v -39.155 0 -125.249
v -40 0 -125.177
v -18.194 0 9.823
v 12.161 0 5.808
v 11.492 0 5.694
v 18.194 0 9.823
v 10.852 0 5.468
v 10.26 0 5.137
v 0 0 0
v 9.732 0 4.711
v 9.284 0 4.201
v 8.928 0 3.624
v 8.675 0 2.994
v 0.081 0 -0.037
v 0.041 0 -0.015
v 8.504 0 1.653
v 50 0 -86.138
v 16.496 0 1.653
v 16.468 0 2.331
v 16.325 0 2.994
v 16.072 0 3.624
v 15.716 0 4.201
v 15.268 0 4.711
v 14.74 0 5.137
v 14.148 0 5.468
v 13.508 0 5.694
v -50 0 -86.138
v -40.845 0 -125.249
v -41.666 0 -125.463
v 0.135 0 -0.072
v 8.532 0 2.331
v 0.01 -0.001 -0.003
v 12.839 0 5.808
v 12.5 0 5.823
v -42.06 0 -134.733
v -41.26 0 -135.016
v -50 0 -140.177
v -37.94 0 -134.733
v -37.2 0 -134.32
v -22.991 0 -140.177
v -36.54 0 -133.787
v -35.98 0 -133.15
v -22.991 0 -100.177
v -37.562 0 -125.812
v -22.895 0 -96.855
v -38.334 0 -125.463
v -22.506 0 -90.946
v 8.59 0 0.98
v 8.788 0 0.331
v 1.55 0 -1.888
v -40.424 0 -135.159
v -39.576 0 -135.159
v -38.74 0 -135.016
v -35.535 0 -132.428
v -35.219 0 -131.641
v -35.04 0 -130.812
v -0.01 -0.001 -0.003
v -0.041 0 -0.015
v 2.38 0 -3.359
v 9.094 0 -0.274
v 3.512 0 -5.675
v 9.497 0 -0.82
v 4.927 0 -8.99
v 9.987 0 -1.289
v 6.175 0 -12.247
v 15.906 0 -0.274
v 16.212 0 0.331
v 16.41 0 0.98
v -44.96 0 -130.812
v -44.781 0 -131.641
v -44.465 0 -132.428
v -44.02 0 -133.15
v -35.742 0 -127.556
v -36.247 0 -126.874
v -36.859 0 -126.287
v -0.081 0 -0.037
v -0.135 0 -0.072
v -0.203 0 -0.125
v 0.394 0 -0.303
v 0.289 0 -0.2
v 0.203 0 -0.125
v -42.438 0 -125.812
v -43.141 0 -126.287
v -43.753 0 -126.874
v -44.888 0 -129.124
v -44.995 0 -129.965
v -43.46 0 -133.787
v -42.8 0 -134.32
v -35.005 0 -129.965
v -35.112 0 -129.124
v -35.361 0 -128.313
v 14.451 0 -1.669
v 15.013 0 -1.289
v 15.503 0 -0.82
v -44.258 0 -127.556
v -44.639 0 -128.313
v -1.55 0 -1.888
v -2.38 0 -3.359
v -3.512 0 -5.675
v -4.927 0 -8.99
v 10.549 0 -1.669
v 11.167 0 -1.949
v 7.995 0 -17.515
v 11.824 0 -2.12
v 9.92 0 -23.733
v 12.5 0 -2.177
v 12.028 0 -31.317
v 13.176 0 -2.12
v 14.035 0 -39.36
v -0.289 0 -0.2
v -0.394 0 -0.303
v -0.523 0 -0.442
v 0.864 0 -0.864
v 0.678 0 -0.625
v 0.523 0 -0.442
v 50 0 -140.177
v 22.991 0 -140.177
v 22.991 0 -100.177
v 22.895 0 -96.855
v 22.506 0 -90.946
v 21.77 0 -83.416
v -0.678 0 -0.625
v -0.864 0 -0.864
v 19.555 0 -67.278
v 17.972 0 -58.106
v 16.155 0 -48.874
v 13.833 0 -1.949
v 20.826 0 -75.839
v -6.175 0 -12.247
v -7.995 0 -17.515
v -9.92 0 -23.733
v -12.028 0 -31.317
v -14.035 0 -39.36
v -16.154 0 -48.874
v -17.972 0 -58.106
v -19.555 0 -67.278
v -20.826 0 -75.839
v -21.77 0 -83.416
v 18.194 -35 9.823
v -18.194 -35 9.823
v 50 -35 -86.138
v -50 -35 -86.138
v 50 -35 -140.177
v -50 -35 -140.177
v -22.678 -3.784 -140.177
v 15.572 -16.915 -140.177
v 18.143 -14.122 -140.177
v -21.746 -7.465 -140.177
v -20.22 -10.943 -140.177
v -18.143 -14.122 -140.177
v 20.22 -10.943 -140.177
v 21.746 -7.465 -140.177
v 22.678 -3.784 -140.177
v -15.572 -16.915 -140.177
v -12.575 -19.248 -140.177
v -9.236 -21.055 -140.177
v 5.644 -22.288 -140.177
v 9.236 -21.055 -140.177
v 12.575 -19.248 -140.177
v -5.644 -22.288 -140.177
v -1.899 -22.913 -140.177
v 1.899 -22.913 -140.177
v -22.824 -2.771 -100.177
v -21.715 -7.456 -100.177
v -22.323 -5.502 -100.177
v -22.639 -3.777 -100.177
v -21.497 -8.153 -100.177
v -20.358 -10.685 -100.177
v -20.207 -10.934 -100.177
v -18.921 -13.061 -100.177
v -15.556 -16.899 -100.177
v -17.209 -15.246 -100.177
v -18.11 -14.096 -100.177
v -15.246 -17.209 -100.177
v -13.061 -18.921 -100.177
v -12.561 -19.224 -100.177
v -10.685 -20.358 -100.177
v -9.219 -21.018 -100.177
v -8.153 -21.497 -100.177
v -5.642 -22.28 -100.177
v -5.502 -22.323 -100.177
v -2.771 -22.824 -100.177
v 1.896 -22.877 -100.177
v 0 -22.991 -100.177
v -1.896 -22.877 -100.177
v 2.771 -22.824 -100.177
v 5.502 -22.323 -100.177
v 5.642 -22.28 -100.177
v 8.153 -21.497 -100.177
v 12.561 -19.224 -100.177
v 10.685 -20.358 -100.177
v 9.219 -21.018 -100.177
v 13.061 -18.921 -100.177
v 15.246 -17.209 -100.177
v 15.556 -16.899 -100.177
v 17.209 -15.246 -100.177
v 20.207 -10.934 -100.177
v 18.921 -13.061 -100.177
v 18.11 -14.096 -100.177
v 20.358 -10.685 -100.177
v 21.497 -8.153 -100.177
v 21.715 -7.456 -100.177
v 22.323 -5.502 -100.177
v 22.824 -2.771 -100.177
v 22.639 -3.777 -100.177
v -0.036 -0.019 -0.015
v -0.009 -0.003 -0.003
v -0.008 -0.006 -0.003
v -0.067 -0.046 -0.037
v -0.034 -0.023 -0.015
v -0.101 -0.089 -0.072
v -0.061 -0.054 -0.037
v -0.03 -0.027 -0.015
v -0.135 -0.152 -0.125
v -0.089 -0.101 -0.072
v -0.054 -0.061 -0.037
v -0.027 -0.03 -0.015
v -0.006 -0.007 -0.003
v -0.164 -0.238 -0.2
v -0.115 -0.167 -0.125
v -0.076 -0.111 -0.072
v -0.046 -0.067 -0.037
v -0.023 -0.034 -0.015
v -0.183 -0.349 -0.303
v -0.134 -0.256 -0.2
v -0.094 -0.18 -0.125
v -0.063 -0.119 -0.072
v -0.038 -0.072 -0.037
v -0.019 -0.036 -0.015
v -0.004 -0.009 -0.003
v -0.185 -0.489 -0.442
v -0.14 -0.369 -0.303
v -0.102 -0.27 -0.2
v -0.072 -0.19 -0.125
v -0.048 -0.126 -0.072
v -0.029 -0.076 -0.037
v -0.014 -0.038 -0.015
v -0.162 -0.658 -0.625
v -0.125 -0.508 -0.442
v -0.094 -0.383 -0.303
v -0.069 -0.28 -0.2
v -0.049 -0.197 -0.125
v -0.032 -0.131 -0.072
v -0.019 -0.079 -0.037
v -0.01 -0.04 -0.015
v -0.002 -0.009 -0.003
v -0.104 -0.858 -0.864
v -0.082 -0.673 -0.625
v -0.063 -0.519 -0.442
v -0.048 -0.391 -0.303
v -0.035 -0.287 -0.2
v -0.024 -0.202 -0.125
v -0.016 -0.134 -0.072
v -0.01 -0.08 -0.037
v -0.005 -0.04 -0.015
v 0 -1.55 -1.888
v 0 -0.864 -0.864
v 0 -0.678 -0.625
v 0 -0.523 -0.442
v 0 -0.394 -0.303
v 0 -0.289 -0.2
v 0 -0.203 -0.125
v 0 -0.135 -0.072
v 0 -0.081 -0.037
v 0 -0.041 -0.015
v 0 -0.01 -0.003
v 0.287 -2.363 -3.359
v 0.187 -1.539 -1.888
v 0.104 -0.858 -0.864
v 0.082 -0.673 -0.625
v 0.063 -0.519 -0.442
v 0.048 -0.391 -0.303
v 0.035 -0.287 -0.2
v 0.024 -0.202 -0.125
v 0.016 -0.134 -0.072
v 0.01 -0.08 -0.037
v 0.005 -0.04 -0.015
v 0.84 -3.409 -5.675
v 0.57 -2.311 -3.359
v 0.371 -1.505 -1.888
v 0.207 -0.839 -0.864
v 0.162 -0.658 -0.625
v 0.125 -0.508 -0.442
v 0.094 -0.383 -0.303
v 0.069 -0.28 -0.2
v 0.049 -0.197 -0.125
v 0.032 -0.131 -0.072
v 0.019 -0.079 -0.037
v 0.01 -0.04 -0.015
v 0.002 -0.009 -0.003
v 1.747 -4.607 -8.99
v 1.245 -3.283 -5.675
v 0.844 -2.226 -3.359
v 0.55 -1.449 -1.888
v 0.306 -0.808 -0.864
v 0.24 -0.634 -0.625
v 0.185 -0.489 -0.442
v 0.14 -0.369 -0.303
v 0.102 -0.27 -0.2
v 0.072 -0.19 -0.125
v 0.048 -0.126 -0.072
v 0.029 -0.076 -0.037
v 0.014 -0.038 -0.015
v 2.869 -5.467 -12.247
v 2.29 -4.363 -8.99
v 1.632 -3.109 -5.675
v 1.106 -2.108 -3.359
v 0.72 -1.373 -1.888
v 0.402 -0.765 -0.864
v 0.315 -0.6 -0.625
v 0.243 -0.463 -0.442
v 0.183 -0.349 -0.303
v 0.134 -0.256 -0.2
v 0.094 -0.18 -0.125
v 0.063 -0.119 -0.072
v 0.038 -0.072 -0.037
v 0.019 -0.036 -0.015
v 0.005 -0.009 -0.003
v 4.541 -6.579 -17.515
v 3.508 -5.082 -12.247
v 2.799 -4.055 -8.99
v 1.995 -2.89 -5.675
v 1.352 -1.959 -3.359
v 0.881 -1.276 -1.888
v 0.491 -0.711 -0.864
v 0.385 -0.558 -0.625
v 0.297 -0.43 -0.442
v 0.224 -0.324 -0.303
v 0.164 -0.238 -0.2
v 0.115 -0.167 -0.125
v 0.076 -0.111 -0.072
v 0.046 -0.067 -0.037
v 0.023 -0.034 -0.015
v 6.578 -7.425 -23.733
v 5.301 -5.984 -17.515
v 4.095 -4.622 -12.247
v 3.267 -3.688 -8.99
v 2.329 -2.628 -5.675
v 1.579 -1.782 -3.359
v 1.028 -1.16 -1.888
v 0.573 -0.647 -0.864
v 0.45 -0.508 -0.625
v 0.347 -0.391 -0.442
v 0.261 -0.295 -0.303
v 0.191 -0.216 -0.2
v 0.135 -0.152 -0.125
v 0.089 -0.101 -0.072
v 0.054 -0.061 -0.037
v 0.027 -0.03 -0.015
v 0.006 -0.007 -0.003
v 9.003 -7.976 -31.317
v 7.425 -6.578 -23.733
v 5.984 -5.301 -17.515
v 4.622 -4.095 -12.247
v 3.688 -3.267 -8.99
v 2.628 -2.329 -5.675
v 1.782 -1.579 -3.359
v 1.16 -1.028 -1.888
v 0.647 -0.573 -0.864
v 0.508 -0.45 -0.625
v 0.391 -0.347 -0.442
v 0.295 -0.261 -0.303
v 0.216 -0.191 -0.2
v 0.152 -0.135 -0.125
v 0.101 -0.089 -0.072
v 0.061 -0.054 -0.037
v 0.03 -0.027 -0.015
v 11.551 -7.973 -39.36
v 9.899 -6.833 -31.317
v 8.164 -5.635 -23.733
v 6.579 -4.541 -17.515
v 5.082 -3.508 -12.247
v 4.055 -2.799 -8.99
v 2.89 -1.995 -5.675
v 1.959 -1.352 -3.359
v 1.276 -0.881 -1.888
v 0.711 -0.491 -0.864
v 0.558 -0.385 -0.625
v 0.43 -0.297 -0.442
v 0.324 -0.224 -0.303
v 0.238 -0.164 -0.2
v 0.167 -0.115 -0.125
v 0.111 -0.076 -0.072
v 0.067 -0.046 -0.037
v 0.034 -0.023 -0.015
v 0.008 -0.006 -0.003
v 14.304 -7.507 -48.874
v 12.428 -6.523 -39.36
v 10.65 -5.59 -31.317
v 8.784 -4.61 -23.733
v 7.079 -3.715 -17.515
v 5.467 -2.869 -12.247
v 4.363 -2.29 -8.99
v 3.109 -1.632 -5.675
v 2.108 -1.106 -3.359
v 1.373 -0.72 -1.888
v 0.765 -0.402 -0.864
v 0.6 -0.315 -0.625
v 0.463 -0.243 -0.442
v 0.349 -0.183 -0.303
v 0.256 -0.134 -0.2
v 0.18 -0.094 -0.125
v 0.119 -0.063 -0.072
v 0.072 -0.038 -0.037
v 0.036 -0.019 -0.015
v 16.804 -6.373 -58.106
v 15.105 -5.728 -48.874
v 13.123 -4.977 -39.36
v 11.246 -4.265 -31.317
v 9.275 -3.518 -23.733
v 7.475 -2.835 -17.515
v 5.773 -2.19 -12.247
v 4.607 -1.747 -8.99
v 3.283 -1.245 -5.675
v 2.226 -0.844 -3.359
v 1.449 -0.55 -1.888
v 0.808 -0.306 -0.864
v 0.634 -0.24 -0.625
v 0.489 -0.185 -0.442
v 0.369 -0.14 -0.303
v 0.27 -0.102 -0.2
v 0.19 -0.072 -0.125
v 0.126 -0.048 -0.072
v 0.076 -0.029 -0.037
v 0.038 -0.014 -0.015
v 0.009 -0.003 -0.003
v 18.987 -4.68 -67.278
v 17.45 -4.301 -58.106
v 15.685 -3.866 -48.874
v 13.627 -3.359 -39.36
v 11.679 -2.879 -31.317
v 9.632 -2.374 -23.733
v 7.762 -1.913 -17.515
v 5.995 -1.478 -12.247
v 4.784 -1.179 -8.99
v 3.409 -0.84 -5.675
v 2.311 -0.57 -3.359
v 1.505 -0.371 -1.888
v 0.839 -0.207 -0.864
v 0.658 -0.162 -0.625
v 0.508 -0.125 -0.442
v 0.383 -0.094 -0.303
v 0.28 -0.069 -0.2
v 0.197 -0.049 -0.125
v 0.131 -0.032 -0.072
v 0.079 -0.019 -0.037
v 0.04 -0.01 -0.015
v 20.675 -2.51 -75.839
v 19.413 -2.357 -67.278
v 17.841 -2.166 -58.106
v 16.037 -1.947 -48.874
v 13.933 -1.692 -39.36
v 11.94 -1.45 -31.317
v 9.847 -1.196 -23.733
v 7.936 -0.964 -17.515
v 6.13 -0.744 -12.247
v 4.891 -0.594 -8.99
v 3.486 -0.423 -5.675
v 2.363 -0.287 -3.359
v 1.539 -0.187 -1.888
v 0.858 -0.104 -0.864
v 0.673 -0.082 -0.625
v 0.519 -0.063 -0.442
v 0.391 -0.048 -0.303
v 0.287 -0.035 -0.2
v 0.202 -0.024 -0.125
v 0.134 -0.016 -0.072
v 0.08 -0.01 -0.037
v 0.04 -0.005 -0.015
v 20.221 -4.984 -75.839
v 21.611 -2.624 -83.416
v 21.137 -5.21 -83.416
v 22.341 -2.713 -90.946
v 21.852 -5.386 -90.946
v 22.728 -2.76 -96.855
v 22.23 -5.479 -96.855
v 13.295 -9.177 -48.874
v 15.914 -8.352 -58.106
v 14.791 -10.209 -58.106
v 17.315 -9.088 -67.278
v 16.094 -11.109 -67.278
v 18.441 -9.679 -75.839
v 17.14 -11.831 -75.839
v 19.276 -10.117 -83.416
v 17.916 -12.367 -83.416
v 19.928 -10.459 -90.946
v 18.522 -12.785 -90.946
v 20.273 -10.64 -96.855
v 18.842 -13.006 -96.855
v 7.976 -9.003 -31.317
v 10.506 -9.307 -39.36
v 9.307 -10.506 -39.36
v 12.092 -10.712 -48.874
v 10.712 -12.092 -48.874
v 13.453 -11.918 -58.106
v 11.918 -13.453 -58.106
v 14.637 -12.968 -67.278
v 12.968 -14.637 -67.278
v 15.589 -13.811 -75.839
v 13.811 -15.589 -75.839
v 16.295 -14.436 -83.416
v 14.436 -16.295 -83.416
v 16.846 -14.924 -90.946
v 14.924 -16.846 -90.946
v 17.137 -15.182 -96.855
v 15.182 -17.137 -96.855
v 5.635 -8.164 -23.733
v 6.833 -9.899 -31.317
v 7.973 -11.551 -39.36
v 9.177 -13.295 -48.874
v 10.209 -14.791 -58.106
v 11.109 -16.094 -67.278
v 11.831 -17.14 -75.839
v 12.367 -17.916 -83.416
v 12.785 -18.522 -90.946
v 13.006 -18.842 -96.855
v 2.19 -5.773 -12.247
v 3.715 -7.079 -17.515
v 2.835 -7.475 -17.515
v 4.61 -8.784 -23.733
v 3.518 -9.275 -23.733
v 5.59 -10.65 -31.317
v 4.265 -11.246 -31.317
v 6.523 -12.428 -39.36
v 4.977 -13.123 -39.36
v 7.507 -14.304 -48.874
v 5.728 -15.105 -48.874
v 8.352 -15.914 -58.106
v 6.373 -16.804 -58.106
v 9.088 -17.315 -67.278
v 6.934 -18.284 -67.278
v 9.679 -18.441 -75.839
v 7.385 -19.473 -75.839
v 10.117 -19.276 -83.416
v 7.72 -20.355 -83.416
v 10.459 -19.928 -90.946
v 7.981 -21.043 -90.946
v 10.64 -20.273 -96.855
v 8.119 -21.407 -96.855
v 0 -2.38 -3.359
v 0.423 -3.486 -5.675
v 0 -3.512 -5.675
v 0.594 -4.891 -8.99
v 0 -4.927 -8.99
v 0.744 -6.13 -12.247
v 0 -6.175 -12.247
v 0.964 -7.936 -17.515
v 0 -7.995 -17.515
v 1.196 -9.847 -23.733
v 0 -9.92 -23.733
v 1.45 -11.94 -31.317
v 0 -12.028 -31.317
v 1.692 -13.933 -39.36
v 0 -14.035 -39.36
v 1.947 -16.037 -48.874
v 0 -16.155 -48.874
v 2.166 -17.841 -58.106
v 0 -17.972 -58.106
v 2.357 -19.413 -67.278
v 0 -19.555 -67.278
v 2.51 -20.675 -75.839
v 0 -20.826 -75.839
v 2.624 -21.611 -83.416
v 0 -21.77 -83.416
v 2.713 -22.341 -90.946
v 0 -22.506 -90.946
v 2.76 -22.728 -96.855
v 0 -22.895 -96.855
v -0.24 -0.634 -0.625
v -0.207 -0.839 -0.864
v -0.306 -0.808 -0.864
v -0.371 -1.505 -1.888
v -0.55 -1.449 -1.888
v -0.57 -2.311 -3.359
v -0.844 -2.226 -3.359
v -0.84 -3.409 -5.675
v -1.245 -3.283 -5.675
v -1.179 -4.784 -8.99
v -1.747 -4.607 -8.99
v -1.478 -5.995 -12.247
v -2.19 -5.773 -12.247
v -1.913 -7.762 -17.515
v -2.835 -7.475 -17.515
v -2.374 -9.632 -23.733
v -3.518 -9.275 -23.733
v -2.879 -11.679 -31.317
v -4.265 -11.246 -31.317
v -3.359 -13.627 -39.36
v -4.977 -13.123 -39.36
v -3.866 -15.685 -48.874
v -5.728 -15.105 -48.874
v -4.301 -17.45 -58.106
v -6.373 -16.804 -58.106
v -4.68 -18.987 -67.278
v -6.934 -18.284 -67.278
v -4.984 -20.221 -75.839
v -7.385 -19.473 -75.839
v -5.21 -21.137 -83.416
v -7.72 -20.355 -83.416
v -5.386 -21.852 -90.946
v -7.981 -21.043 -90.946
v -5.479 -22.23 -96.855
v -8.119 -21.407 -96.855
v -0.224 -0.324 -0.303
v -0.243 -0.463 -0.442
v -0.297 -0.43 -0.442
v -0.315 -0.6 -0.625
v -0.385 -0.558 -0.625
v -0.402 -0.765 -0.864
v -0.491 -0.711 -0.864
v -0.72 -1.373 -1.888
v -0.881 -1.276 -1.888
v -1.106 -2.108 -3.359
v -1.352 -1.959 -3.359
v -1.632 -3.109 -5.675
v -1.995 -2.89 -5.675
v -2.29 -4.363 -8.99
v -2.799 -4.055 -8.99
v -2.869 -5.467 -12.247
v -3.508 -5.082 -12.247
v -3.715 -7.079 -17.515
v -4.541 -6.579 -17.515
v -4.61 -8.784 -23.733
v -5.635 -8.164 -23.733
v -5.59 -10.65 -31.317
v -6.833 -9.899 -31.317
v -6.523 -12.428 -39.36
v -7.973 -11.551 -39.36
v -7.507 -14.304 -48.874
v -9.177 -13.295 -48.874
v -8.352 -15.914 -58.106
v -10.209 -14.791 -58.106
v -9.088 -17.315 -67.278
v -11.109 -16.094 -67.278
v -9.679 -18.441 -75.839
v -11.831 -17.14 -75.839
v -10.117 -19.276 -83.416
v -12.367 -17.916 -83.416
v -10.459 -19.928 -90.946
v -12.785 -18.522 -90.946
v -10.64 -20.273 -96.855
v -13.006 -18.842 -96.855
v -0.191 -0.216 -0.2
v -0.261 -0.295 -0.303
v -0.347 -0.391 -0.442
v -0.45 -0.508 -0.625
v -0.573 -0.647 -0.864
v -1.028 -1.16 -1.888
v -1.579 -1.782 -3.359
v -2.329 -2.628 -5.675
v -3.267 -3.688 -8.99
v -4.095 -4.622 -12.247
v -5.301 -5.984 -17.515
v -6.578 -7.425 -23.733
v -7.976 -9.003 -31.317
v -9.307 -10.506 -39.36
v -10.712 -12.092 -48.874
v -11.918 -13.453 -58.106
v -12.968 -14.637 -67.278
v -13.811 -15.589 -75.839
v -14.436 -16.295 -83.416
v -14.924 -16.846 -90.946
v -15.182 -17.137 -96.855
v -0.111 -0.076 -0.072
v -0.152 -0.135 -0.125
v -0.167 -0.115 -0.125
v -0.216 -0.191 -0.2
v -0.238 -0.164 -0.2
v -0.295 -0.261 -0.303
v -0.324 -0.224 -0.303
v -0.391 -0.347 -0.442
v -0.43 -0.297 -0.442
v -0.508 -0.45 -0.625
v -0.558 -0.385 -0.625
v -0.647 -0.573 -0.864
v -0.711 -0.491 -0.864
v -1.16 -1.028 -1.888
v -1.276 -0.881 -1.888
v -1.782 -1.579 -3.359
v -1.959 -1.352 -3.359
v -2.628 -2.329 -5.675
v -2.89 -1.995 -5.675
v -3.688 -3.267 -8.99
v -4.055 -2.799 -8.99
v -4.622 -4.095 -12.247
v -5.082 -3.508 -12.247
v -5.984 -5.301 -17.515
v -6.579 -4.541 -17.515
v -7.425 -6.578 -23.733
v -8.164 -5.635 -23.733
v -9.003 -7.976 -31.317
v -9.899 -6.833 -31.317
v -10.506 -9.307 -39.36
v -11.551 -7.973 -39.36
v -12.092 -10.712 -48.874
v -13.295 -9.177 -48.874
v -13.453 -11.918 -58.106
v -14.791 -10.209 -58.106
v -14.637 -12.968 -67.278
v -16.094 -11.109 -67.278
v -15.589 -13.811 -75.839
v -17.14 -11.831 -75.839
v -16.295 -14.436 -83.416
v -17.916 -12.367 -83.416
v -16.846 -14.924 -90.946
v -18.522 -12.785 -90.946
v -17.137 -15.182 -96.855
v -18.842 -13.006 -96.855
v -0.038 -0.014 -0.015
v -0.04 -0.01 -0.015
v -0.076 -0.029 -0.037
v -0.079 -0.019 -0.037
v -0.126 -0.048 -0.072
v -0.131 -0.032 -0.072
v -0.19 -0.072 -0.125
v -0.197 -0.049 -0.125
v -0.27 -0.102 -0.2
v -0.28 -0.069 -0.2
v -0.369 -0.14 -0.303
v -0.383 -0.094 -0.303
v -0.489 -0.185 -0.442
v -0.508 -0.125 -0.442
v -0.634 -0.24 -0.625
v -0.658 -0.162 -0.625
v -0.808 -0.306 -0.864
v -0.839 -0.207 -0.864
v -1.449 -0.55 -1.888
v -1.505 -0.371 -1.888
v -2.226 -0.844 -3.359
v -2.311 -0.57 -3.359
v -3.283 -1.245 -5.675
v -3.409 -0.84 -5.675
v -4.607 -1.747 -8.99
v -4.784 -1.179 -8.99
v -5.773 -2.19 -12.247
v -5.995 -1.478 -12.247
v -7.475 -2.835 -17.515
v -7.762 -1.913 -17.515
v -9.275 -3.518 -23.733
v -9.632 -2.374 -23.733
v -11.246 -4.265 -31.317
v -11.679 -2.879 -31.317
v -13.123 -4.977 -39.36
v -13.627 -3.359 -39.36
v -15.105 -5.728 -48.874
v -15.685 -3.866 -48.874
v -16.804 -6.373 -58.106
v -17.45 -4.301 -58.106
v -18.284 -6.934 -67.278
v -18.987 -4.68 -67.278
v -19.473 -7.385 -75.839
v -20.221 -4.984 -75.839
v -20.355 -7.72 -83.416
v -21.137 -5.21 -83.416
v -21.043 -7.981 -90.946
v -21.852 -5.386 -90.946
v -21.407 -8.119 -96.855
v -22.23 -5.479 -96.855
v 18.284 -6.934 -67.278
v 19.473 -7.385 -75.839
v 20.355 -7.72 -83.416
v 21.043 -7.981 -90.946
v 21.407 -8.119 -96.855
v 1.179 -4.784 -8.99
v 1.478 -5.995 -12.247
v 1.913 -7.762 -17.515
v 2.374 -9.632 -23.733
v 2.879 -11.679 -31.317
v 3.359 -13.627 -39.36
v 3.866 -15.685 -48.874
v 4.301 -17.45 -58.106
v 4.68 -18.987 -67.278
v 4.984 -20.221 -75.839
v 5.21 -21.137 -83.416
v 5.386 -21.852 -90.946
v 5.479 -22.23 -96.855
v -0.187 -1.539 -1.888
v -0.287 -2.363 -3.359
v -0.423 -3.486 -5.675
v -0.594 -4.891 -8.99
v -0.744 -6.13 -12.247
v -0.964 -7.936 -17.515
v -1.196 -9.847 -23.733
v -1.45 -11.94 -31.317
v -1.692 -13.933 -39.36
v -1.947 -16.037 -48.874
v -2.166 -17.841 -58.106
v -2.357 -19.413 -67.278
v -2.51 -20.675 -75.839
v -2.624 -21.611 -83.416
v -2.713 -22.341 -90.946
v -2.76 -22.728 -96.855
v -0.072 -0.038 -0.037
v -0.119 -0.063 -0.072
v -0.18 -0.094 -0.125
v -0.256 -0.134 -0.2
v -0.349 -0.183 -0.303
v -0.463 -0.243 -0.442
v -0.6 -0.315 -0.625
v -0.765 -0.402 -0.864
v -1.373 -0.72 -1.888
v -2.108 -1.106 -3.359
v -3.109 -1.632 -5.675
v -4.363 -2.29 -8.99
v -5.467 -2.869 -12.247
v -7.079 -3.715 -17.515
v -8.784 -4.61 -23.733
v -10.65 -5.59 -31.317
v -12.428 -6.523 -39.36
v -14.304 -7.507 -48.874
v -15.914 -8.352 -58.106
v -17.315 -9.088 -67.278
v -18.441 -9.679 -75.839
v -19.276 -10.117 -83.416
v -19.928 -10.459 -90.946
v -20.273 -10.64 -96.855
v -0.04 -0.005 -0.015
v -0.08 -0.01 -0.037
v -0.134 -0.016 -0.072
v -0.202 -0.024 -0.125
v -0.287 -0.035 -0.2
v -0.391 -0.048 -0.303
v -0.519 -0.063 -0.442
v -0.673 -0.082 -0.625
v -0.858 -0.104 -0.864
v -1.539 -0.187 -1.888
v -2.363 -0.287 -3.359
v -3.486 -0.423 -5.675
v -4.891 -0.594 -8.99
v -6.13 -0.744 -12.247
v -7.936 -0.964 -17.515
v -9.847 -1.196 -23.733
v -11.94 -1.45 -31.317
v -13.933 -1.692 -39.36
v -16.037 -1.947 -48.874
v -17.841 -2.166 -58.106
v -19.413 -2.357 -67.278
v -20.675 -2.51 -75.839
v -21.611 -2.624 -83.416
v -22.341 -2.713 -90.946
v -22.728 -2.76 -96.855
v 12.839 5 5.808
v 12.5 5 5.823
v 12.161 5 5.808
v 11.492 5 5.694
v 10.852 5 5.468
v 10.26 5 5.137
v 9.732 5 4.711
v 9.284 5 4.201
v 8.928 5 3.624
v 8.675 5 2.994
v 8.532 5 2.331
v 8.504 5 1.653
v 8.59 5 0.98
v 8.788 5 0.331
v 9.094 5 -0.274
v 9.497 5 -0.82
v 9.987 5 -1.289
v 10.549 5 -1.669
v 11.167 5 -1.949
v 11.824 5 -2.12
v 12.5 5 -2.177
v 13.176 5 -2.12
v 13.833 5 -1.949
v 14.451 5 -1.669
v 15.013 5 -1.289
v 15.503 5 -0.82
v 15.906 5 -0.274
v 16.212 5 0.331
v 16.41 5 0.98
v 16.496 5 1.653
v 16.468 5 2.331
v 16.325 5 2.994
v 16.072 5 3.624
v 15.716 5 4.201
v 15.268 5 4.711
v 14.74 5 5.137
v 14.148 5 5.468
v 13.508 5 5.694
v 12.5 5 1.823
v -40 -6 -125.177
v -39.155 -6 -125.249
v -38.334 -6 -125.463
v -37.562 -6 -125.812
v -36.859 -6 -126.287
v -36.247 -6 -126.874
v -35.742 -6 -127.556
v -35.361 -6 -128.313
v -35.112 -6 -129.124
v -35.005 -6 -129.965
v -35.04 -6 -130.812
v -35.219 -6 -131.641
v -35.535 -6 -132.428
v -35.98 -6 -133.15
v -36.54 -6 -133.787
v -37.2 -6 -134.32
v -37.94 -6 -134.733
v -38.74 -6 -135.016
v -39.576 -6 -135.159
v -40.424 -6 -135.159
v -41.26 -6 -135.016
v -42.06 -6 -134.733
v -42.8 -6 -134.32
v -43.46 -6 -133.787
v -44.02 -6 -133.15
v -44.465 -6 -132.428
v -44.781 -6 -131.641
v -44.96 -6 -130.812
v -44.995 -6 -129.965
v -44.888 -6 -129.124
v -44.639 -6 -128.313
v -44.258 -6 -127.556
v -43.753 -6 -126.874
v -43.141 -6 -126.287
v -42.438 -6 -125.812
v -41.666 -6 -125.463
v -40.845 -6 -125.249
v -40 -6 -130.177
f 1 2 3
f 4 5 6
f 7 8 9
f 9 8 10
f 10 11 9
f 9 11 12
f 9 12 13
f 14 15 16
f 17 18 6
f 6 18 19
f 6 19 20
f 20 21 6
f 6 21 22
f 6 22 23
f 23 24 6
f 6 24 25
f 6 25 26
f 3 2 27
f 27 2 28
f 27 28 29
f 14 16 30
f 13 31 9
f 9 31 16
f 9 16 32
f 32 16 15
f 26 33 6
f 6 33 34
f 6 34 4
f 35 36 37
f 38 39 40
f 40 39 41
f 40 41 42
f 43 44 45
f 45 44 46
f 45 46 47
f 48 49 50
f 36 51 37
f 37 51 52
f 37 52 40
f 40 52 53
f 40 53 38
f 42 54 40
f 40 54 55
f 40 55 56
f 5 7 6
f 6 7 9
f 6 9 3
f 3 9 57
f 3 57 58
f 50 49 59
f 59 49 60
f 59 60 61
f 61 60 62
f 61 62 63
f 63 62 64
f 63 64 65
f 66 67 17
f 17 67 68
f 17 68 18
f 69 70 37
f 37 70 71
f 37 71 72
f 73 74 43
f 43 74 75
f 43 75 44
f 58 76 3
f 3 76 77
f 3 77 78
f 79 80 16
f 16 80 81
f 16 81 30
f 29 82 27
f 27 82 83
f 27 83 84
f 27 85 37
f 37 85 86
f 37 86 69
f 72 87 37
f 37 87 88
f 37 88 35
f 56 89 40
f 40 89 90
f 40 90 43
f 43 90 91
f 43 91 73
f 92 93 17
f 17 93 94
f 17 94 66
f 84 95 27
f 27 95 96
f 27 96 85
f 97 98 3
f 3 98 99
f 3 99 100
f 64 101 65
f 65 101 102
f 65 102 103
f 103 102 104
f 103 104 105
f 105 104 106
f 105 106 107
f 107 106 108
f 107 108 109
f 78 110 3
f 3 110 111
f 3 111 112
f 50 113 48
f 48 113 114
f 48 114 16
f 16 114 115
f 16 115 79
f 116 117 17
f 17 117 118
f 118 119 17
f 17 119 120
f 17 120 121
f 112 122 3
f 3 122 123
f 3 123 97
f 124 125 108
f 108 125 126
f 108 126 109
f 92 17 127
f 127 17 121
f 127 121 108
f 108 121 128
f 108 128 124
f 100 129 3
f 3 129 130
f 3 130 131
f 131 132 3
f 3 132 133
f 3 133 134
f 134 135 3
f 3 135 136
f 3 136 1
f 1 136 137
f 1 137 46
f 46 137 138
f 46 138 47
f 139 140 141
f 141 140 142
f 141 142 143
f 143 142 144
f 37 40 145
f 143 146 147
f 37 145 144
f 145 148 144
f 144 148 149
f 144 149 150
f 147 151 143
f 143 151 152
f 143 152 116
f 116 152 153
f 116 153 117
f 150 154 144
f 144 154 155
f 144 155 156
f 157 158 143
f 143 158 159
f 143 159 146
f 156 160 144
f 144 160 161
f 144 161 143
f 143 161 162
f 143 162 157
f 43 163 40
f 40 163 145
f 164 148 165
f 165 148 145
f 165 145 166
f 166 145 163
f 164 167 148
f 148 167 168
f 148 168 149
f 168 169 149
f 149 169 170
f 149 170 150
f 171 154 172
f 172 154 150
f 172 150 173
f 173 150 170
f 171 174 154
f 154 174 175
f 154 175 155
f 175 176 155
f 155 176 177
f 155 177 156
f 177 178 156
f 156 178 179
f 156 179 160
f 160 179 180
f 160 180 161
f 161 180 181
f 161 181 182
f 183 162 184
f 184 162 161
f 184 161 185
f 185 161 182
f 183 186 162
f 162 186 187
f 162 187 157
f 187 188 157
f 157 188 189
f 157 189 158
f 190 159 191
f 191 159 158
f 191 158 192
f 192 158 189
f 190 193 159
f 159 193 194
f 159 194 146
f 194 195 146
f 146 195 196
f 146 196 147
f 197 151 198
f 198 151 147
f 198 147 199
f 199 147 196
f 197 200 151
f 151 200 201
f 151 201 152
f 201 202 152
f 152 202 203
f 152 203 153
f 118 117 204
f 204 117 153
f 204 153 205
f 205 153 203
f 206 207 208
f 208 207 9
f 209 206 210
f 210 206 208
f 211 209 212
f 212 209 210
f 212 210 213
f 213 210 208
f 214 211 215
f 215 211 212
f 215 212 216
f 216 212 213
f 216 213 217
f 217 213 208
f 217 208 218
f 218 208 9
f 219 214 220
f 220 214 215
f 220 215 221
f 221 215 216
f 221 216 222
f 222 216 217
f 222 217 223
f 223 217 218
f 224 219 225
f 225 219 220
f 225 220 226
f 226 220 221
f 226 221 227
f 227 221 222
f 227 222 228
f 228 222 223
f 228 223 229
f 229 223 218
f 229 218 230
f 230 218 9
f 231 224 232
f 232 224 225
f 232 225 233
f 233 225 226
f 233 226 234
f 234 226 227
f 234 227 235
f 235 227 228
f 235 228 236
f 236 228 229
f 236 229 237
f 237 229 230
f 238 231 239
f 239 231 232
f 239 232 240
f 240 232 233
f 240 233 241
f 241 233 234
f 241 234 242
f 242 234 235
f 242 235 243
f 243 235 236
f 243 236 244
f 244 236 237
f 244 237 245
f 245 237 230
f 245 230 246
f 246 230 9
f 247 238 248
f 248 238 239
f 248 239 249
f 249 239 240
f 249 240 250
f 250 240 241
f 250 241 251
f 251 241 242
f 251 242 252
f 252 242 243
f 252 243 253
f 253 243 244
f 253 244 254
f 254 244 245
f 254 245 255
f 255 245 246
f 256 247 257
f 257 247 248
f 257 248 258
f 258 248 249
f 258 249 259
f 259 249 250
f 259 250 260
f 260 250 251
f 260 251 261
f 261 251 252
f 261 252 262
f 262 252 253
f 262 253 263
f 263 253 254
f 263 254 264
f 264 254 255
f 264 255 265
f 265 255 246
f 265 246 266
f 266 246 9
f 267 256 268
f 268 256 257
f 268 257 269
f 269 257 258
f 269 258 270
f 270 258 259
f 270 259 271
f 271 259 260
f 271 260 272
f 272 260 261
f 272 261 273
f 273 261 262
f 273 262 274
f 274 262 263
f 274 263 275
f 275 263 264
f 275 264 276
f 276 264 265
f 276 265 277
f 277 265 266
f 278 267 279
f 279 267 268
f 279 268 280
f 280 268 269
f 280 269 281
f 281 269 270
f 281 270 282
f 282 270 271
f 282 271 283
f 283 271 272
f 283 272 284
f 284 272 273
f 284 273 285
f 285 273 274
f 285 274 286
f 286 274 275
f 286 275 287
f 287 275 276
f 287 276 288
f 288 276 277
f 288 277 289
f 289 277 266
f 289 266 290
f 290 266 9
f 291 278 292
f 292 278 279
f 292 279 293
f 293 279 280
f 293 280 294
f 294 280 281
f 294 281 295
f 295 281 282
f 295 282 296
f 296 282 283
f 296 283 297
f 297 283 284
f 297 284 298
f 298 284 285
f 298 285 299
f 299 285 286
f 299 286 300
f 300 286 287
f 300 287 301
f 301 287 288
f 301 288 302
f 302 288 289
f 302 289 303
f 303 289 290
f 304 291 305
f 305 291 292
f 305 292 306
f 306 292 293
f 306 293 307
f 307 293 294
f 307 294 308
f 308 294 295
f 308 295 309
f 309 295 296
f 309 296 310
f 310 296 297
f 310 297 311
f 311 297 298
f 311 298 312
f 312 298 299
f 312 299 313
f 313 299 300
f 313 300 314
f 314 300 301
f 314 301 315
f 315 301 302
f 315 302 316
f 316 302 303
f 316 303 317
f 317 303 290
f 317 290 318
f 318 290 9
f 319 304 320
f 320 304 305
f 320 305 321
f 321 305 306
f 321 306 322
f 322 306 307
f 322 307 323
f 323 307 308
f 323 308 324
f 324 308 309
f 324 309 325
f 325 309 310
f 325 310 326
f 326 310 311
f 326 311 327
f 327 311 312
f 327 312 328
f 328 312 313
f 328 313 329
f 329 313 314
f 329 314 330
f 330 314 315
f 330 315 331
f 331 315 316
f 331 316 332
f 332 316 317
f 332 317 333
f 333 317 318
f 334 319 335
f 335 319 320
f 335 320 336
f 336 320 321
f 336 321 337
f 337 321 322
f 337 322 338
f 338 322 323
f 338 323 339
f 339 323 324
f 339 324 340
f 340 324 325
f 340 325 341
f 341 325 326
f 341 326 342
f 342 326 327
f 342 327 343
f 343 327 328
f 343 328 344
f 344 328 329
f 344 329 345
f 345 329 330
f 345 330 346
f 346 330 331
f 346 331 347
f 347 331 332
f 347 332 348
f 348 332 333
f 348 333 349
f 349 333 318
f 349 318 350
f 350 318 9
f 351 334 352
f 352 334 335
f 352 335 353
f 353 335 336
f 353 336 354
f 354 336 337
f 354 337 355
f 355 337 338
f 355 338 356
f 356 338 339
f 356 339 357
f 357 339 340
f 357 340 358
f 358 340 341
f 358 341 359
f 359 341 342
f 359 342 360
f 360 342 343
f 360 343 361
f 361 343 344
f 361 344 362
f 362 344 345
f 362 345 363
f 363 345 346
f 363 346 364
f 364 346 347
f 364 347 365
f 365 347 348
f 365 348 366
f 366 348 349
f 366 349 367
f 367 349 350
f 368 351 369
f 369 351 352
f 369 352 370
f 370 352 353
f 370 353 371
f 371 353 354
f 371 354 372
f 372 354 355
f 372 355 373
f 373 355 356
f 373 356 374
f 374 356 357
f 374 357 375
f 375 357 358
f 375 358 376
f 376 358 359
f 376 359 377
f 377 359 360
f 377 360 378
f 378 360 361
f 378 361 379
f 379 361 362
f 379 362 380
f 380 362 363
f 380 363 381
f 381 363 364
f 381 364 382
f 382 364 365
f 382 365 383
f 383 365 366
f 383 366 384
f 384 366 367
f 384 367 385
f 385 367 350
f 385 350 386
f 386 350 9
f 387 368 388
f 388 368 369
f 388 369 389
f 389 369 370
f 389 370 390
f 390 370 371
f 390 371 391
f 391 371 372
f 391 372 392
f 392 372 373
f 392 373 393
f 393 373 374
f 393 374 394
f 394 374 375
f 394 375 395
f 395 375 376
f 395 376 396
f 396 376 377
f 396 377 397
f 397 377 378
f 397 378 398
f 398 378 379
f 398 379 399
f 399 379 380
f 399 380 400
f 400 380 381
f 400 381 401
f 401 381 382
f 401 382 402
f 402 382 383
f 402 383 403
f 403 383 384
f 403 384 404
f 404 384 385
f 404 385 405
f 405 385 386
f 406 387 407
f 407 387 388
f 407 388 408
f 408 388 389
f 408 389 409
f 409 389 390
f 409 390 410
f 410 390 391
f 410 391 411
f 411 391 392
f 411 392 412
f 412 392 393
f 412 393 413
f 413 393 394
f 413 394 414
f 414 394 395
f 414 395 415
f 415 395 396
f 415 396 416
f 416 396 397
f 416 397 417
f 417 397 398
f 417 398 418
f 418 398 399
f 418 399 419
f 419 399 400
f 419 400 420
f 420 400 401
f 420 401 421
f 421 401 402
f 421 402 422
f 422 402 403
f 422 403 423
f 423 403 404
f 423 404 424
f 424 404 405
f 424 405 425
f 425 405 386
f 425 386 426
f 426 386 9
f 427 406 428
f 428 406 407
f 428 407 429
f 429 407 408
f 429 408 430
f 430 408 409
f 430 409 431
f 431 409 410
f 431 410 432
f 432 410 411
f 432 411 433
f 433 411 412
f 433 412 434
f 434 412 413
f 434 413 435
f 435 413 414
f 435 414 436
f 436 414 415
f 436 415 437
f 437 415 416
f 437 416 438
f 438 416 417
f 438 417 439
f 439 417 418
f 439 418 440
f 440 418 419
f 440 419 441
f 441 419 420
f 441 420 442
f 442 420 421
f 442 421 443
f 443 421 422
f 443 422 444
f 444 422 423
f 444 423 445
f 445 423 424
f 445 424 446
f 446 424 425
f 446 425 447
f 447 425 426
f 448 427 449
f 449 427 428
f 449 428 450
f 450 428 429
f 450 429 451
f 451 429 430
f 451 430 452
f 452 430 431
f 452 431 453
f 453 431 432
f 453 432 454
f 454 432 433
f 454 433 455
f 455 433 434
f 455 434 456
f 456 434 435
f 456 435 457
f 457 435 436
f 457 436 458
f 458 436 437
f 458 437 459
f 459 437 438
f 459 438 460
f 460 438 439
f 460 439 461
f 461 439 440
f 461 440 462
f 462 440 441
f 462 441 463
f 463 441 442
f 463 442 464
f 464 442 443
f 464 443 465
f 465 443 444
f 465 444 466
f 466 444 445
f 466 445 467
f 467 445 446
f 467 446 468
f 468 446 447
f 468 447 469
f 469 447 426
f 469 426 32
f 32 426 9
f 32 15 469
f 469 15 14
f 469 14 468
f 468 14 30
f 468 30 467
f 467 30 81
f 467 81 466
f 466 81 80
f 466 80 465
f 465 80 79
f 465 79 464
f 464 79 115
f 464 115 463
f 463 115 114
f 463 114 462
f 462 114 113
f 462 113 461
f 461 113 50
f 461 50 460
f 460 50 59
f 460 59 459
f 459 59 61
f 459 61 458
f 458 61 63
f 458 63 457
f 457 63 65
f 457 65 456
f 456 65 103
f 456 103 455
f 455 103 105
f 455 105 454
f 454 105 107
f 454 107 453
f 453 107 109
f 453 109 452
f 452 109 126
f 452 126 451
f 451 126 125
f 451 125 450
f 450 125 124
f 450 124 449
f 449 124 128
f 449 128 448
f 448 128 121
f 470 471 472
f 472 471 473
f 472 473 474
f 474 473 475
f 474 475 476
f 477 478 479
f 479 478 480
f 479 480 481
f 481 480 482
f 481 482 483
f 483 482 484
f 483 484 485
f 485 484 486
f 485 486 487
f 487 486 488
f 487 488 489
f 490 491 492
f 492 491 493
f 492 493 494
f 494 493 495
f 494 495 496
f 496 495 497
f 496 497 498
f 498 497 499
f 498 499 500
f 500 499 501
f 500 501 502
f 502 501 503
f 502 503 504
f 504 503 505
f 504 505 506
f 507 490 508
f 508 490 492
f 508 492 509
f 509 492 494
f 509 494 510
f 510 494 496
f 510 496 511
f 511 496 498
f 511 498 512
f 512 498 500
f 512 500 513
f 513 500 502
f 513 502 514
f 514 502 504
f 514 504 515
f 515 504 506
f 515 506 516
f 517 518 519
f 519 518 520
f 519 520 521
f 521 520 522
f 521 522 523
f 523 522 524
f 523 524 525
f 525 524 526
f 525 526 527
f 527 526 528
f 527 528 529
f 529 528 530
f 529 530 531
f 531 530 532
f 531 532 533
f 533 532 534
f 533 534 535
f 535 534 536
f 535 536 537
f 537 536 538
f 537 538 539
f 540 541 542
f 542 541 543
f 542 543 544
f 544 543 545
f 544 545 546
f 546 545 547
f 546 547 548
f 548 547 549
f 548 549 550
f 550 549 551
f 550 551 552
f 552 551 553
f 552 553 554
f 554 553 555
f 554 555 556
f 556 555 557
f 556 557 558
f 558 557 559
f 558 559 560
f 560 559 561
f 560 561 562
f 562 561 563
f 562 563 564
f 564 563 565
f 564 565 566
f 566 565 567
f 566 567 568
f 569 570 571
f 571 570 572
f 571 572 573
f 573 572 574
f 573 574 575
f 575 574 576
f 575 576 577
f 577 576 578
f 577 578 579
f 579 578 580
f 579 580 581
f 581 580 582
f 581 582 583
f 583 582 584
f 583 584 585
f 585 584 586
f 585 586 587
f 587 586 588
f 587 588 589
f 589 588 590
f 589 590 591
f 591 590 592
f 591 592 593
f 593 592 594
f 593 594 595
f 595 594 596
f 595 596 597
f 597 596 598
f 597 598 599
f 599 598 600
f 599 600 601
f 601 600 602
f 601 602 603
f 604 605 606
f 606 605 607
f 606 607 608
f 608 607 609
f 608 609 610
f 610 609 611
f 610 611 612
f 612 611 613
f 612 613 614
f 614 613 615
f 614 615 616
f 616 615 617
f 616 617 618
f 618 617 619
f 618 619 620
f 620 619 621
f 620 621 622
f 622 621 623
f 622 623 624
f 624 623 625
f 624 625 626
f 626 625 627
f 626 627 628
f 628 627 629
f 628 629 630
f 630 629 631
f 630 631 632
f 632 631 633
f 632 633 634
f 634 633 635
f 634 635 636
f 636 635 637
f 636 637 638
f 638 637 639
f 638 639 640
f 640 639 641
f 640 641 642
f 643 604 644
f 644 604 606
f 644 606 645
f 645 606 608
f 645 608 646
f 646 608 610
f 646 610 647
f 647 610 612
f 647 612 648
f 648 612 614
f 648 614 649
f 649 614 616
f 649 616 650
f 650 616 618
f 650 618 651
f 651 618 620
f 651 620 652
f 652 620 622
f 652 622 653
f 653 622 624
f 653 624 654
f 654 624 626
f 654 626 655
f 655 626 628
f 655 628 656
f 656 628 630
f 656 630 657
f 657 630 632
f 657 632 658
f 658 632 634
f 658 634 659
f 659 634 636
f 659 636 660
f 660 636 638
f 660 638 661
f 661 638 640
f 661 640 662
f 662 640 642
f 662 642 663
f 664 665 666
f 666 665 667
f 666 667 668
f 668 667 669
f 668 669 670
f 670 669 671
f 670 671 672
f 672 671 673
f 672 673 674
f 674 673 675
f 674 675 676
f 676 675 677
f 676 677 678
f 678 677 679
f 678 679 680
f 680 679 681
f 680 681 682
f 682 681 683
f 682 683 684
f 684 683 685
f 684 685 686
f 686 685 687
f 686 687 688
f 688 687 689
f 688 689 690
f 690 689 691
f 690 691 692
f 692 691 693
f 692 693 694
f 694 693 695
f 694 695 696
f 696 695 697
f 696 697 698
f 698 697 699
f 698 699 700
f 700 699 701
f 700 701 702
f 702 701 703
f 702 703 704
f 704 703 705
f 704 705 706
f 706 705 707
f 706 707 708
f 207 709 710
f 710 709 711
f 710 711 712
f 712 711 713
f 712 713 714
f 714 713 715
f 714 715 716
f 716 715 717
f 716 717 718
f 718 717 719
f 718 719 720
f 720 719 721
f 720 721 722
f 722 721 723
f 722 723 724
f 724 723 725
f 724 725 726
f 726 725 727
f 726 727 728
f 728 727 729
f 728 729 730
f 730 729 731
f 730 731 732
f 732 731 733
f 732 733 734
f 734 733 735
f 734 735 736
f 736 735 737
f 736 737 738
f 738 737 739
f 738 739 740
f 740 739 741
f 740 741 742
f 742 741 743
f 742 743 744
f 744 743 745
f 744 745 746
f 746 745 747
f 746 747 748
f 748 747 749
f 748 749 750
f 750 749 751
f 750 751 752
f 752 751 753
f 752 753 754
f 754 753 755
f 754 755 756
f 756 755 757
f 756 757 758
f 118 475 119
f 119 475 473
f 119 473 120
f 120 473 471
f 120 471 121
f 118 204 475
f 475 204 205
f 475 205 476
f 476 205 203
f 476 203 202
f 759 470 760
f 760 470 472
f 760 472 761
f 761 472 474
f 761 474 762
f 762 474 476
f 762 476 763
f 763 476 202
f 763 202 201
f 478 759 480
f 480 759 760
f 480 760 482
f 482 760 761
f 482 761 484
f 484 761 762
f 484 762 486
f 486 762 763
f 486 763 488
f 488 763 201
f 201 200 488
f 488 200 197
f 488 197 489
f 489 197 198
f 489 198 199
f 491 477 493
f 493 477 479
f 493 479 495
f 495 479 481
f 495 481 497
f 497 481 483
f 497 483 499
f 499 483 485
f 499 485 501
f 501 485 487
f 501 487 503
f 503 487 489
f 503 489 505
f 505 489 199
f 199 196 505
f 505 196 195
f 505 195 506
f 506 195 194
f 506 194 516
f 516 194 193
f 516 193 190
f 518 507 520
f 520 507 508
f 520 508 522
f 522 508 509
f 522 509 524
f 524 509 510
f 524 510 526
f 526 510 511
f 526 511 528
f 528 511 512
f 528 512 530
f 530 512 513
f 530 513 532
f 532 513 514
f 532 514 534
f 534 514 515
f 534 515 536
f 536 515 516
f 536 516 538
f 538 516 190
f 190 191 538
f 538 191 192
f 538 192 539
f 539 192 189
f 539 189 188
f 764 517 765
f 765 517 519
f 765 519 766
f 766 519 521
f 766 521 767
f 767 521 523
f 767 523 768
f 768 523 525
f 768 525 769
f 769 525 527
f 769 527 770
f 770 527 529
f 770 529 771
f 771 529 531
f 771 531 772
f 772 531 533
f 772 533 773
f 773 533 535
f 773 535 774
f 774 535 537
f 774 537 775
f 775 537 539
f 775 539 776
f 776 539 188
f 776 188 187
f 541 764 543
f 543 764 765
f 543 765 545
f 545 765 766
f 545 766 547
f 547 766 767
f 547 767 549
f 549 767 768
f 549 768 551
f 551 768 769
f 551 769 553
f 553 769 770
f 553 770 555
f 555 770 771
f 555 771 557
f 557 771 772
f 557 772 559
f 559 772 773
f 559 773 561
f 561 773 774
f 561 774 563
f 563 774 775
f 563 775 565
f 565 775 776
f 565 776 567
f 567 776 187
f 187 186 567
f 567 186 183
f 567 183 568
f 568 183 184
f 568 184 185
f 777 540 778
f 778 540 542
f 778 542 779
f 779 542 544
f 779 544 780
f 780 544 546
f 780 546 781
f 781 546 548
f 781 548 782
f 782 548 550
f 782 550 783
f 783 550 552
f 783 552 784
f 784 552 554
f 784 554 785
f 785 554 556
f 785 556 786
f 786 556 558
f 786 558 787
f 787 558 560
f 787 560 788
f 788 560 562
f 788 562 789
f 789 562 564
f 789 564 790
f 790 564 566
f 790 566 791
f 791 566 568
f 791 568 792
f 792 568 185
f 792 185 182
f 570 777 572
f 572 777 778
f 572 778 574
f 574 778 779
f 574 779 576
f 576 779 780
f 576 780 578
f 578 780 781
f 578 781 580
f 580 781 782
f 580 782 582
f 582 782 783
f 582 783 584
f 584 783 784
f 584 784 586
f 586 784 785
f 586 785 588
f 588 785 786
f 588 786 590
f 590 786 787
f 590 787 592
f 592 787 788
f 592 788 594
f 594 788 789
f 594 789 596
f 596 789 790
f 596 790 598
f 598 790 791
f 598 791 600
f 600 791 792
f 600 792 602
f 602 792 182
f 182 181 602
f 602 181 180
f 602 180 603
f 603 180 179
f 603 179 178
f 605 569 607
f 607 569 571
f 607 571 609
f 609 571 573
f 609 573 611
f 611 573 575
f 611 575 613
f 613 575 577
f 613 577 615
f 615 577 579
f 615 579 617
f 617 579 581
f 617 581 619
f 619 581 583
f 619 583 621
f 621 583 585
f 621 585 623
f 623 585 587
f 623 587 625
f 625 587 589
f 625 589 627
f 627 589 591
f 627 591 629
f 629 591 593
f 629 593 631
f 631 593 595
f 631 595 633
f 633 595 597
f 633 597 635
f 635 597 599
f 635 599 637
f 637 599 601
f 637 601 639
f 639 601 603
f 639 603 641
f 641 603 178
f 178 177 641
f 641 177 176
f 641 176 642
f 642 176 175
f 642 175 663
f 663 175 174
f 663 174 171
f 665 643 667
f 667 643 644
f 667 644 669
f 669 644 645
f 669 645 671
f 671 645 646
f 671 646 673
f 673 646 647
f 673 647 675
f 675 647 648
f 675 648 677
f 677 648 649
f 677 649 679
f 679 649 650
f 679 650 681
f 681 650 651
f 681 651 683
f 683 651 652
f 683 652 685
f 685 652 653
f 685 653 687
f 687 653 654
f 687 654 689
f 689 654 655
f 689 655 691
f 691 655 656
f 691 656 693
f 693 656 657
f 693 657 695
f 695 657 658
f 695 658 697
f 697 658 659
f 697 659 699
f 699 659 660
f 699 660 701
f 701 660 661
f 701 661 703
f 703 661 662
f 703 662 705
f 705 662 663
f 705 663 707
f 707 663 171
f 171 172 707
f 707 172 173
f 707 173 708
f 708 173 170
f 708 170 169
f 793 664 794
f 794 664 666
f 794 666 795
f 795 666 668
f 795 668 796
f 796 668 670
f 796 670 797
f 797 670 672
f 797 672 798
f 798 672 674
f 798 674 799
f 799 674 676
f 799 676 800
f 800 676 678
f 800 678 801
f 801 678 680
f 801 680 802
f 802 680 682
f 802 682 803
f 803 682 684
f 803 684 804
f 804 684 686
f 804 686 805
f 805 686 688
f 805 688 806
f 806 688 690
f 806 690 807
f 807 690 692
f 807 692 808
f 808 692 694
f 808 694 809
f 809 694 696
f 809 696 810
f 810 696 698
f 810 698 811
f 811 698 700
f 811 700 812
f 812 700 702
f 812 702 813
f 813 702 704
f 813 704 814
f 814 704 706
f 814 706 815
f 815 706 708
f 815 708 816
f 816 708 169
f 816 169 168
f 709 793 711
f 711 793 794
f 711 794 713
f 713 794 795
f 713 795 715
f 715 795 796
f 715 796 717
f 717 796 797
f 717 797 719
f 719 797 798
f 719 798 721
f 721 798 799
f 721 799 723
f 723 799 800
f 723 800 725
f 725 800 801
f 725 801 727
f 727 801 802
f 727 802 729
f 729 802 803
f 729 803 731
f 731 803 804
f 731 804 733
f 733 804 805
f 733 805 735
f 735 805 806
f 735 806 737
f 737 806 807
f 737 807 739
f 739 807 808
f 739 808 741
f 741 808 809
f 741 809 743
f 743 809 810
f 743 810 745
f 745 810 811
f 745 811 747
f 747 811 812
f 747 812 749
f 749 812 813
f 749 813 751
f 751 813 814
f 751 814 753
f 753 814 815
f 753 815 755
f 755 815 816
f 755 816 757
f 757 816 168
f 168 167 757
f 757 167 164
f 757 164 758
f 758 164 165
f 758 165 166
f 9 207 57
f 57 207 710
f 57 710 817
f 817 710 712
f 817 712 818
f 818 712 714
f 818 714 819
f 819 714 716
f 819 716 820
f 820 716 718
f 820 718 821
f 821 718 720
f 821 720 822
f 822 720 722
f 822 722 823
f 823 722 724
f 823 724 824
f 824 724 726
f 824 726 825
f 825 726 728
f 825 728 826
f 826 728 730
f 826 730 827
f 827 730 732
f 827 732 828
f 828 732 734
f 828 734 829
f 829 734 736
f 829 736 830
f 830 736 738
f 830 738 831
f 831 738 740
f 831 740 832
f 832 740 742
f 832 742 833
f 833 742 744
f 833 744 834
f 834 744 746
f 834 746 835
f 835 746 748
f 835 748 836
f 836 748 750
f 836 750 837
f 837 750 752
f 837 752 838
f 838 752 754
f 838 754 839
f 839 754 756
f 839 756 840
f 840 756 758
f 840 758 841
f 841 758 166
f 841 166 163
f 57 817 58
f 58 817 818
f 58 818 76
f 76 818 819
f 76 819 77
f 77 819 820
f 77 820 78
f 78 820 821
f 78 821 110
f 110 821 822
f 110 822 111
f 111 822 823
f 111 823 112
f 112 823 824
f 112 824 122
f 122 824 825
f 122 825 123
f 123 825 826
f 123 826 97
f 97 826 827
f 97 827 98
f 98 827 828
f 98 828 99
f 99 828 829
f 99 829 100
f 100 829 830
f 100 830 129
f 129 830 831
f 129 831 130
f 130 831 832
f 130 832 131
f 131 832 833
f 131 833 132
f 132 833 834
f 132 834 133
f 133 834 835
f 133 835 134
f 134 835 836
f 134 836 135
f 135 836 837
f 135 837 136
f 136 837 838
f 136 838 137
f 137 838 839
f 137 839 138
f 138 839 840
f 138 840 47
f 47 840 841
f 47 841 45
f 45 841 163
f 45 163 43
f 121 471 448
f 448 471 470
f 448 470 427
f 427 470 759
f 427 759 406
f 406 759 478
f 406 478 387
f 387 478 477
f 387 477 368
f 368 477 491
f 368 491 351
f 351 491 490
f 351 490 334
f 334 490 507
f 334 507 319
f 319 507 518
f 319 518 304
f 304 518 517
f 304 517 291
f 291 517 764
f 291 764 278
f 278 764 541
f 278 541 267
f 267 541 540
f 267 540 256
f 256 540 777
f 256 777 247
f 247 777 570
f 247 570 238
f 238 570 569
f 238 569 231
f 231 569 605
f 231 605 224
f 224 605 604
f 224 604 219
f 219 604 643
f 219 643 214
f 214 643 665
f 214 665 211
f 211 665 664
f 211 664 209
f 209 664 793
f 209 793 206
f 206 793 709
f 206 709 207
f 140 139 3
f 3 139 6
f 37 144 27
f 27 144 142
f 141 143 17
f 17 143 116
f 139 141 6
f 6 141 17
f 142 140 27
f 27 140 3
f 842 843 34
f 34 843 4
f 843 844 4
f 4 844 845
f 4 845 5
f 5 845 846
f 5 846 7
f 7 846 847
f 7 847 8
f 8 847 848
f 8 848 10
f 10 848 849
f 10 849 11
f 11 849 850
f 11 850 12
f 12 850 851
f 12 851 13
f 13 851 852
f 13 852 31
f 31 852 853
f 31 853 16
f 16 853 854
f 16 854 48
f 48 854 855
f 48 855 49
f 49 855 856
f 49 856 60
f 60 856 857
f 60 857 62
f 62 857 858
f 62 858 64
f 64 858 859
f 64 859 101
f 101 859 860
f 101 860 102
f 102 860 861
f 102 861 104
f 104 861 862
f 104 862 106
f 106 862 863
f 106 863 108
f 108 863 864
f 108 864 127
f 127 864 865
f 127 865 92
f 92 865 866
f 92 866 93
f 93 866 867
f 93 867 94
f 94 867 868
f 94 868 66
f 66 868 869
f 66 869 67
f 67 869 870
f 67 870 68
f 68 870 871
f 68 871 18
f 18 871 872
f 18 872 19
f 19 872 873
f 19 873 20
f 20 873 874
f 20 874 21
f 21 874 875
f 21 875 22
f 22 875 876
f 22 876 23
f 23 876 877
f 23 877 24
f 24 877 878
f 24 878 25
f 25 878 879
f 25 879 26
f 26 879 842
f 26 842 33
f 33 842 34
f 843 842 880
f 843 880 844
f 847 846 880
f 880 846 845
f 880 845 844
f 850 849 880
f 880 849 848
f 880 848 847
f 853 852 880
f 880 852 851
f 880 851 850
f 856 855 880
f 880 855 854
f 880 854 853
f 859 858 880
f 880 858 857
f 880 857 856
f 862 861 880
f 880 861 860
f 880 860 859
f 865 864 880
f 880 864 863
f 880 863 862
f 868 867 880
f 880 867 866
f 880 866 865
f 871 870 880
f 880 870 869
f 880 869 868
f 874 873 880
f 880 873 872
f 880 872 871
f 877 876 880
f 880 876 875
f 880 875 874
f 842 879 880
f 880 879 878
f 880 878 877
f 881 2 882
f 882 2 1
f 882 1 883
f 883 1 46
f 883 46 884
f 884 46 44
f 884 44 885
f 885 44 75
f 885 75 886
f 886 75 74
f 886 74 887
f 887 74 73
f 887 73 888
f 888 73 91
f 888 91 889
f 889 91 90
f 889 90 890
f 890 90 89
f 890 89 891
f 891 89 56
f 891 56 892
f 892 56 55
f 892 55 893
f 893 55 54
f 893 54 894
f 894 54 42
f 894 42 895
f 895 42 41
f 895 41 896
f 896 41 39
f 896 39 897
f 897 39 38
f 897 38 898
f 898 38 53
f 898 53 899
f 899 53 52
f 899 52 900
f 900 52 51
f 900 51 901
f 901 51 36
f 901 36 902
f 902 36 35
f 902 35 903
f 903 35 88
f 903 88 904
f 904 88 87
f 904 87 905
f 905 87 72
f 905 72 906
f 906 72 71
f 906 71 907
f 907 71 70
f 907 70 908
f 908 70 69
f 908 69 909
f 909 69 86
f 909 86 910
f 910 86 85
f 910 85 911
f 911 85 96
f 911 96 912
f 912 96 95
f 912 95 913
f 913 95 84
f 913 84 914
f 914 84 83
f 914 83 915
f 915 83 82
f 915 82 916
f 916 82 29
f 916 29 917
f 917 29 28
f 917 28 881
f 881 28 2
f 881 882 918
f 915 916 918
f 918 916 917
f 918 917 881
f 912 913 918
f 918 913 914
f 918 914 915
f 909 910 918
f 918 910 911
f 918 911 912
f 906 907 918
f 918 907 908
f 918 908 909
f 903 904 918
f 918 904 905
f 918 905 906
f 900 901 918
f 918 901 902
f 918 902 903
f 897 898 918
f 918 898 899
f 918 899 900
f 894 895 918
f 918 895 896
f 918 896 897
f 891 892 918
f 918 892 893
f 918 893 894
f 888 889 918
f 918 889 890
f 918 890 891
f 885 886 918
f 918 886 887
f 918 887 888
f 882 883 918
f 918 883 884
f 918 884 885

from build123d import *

# Parameters (mm, degrees)
SKETCH2_W            = 150
SKETCH2_H            = 70
BOSS_EXTRUDE1_DEPTH  = 50
INTERSECT1_OUTLINE_W = 100
INTERSECT1_OUTLINE_H = 150
INTERSECT1_DEPTH     = 35
CUT_EXTRUDE1_DEPTH   = 153.887652053
SKETCH4_R            = 4
BOSS_EXTRUDE2_DEPTH  = 5
SKETCH8_R            = 5
CUT_EXTRUDE2_DEPTH   = 6


# Read off the part's stored shape, not the designer's step: Intersect1
with BuildPart() as part:
    # Sketch2 → Boss-Extrude1 (new, symmetric)
    with BuildSketch(Plane(origin=(0, 0, 0), x_dir=(0, 0, -1), z_dir=(1, 0, 0))):
        with Locations((65.177152604, 0)):
            Rectangle(SKETCH2_W, SKETCH2_H)
    extrude(amount=BOSS_EXTRUDE1_DEPTH, both=True)

    # Sketch1 → Cut-Revolve1 (revolve, cut)
    with BuildSketch(Plane(origin=(0, 0, 0), x_dir=(0, 0, -1), z_dir=(1, 0, 0)), mode=Mode.PRIVATE) as cut_revolve1_sk:
        with BuildLine():
            Line((140.177152604, 22.991315667), (100.177152604, 22.991315667))
            add(Edge.make_bspline(
                [(0, 0), (0.003001049, 0.012379499), (0.011197692, 0.036351162), (0.030910939, 0.072587893), (0.061826137, 0.121023529), (0.108056169, 0.183557631), (0.181890949, 0.271568579), (0.306591117, 0.401983994), (0.524430354, 0.601235581), (0.901337009, 0.902060291), (1.552737658, 1.35492318), (2.678502901, 2.03469009), (4.445764918, 2.96045388), (7.403328149, 4.31706154), (11.599431889, 5.985386832), (16.823063538, 7.814259146), (22.879973582, 9.705127394), (29.12300565, 11.472646372), (35.403551613, 13.101460315), (41.714266155, 14.60858848), (48.050573205, 16.004129586), (54.409190393, 17.293961353), (60.787889899, 18.480587367), (67.185029056, 19.563313869), (73.599488728, 20.538609835), (80.030497438, 21.398160754), (86.47762614, 22.128684831), (91.82278076, 22.603702016), (96.058091382, 22.875635683), (98.677996749, 22.971409991), (99.677383084, 22.991315667), (100.177152604, 22.991315667)],
                knots=[0, 0, 0, 0, 0, 0.000489987, 0.000979974, 0.001581787, 0.002219798, 0.003488078, 0.005411983, 0.008540376, 0.013605957, 0.022087023, 0.03601085, 0.059264391, 0.090564505, 0.147620712, 0.210220905, 0.272821133, 0.335421343, 0.398021557, 0.460621765, 0.523221981, 0.585822195, 0.648422407, 0.711022626, 0.773622837, 0.836223055, 0.89882327, 0.961423485, 0.980711742, 1, 1, 1, 1, 1], degree=4))
            Line((0, 0), (140.177152604, 0))
            Line((140.177152604, 0), (140.177152604, 22.991315667))
        make_face()
    revolve(cut_revolve1_sk.sketch.rotate(Axis((0, 0, 0), (0, 0, -1)), 90), axis=Axis((0, 0, 0), (0, 0, -1)), mode=Mode.SUBTRACT)

    # Intersect1 outline → Intersect1 (cut)
    with BuildSketch(Plane(origin=(0, 0, 0), x_dir=(1, 0, 0), z_dir=(0, 1, 0))):
        with Locations((0, 65.177152604)):
            Rectangle(INTERSECT1_OUTLINE_W, INTERSECT1_OUTLINE_H)
    extrude(amount=INTERSECT1_DEPTH, mode=Mode.SUBTRACT)

    # Sketch5 → Cut-Extrude1 (cut, through all)
    with BuildSketch(Plane(origin=(0, 0, 0), x_dir=(1, 0, 0), z_dir=(0, 1, 0))):
        Polygon((50, 86.137976919), (18.194421541, -9.822847396), (0, -21.198201401), (-18.194421541, -9.822847396), (-50, 86.137976919), (-75.365394844, 84.804131947), (-88.729692443, -46.913449713), (-13.099565549, -40.658440604), (76.90354762, -33.214709966), (74.65964276, 87.590776178), align=None)
    extrude(amount=-CUT_EXTRUDE1_DEPTH, mode=Mode.SUBTRACT)

    # Sketch4 → Boss-Extrude2 (add)
    with BuildSketch(Plane(origin=(0, 0, 0), x_dir=(1, 0, 0), z_dir=(0, 1, 0))):
        with Locations(Location((12.5, -1.822847396, 0), (0, 0, 270))):
            Circle(SKETCH4_R)
    extrude(amount=BOSS_EXTRUDE2_DEPTH)

    # Sketch8 → Cut-Extrude2 (cut)
    with BuildSketch(Plane(origin=(0, 0, 0), x_dir=(1, 0, 0), z_dir=(0, 1, 0))):
        with Locations(Location((-40, 130.177152604, 0), (0, 0, 270))):
            Circle(SKETCH8_R)
    extrude(amount=-CUT_EXTRUDE2_DEPTH, mode=Mode.SUBTRACT)


solid = part.part
